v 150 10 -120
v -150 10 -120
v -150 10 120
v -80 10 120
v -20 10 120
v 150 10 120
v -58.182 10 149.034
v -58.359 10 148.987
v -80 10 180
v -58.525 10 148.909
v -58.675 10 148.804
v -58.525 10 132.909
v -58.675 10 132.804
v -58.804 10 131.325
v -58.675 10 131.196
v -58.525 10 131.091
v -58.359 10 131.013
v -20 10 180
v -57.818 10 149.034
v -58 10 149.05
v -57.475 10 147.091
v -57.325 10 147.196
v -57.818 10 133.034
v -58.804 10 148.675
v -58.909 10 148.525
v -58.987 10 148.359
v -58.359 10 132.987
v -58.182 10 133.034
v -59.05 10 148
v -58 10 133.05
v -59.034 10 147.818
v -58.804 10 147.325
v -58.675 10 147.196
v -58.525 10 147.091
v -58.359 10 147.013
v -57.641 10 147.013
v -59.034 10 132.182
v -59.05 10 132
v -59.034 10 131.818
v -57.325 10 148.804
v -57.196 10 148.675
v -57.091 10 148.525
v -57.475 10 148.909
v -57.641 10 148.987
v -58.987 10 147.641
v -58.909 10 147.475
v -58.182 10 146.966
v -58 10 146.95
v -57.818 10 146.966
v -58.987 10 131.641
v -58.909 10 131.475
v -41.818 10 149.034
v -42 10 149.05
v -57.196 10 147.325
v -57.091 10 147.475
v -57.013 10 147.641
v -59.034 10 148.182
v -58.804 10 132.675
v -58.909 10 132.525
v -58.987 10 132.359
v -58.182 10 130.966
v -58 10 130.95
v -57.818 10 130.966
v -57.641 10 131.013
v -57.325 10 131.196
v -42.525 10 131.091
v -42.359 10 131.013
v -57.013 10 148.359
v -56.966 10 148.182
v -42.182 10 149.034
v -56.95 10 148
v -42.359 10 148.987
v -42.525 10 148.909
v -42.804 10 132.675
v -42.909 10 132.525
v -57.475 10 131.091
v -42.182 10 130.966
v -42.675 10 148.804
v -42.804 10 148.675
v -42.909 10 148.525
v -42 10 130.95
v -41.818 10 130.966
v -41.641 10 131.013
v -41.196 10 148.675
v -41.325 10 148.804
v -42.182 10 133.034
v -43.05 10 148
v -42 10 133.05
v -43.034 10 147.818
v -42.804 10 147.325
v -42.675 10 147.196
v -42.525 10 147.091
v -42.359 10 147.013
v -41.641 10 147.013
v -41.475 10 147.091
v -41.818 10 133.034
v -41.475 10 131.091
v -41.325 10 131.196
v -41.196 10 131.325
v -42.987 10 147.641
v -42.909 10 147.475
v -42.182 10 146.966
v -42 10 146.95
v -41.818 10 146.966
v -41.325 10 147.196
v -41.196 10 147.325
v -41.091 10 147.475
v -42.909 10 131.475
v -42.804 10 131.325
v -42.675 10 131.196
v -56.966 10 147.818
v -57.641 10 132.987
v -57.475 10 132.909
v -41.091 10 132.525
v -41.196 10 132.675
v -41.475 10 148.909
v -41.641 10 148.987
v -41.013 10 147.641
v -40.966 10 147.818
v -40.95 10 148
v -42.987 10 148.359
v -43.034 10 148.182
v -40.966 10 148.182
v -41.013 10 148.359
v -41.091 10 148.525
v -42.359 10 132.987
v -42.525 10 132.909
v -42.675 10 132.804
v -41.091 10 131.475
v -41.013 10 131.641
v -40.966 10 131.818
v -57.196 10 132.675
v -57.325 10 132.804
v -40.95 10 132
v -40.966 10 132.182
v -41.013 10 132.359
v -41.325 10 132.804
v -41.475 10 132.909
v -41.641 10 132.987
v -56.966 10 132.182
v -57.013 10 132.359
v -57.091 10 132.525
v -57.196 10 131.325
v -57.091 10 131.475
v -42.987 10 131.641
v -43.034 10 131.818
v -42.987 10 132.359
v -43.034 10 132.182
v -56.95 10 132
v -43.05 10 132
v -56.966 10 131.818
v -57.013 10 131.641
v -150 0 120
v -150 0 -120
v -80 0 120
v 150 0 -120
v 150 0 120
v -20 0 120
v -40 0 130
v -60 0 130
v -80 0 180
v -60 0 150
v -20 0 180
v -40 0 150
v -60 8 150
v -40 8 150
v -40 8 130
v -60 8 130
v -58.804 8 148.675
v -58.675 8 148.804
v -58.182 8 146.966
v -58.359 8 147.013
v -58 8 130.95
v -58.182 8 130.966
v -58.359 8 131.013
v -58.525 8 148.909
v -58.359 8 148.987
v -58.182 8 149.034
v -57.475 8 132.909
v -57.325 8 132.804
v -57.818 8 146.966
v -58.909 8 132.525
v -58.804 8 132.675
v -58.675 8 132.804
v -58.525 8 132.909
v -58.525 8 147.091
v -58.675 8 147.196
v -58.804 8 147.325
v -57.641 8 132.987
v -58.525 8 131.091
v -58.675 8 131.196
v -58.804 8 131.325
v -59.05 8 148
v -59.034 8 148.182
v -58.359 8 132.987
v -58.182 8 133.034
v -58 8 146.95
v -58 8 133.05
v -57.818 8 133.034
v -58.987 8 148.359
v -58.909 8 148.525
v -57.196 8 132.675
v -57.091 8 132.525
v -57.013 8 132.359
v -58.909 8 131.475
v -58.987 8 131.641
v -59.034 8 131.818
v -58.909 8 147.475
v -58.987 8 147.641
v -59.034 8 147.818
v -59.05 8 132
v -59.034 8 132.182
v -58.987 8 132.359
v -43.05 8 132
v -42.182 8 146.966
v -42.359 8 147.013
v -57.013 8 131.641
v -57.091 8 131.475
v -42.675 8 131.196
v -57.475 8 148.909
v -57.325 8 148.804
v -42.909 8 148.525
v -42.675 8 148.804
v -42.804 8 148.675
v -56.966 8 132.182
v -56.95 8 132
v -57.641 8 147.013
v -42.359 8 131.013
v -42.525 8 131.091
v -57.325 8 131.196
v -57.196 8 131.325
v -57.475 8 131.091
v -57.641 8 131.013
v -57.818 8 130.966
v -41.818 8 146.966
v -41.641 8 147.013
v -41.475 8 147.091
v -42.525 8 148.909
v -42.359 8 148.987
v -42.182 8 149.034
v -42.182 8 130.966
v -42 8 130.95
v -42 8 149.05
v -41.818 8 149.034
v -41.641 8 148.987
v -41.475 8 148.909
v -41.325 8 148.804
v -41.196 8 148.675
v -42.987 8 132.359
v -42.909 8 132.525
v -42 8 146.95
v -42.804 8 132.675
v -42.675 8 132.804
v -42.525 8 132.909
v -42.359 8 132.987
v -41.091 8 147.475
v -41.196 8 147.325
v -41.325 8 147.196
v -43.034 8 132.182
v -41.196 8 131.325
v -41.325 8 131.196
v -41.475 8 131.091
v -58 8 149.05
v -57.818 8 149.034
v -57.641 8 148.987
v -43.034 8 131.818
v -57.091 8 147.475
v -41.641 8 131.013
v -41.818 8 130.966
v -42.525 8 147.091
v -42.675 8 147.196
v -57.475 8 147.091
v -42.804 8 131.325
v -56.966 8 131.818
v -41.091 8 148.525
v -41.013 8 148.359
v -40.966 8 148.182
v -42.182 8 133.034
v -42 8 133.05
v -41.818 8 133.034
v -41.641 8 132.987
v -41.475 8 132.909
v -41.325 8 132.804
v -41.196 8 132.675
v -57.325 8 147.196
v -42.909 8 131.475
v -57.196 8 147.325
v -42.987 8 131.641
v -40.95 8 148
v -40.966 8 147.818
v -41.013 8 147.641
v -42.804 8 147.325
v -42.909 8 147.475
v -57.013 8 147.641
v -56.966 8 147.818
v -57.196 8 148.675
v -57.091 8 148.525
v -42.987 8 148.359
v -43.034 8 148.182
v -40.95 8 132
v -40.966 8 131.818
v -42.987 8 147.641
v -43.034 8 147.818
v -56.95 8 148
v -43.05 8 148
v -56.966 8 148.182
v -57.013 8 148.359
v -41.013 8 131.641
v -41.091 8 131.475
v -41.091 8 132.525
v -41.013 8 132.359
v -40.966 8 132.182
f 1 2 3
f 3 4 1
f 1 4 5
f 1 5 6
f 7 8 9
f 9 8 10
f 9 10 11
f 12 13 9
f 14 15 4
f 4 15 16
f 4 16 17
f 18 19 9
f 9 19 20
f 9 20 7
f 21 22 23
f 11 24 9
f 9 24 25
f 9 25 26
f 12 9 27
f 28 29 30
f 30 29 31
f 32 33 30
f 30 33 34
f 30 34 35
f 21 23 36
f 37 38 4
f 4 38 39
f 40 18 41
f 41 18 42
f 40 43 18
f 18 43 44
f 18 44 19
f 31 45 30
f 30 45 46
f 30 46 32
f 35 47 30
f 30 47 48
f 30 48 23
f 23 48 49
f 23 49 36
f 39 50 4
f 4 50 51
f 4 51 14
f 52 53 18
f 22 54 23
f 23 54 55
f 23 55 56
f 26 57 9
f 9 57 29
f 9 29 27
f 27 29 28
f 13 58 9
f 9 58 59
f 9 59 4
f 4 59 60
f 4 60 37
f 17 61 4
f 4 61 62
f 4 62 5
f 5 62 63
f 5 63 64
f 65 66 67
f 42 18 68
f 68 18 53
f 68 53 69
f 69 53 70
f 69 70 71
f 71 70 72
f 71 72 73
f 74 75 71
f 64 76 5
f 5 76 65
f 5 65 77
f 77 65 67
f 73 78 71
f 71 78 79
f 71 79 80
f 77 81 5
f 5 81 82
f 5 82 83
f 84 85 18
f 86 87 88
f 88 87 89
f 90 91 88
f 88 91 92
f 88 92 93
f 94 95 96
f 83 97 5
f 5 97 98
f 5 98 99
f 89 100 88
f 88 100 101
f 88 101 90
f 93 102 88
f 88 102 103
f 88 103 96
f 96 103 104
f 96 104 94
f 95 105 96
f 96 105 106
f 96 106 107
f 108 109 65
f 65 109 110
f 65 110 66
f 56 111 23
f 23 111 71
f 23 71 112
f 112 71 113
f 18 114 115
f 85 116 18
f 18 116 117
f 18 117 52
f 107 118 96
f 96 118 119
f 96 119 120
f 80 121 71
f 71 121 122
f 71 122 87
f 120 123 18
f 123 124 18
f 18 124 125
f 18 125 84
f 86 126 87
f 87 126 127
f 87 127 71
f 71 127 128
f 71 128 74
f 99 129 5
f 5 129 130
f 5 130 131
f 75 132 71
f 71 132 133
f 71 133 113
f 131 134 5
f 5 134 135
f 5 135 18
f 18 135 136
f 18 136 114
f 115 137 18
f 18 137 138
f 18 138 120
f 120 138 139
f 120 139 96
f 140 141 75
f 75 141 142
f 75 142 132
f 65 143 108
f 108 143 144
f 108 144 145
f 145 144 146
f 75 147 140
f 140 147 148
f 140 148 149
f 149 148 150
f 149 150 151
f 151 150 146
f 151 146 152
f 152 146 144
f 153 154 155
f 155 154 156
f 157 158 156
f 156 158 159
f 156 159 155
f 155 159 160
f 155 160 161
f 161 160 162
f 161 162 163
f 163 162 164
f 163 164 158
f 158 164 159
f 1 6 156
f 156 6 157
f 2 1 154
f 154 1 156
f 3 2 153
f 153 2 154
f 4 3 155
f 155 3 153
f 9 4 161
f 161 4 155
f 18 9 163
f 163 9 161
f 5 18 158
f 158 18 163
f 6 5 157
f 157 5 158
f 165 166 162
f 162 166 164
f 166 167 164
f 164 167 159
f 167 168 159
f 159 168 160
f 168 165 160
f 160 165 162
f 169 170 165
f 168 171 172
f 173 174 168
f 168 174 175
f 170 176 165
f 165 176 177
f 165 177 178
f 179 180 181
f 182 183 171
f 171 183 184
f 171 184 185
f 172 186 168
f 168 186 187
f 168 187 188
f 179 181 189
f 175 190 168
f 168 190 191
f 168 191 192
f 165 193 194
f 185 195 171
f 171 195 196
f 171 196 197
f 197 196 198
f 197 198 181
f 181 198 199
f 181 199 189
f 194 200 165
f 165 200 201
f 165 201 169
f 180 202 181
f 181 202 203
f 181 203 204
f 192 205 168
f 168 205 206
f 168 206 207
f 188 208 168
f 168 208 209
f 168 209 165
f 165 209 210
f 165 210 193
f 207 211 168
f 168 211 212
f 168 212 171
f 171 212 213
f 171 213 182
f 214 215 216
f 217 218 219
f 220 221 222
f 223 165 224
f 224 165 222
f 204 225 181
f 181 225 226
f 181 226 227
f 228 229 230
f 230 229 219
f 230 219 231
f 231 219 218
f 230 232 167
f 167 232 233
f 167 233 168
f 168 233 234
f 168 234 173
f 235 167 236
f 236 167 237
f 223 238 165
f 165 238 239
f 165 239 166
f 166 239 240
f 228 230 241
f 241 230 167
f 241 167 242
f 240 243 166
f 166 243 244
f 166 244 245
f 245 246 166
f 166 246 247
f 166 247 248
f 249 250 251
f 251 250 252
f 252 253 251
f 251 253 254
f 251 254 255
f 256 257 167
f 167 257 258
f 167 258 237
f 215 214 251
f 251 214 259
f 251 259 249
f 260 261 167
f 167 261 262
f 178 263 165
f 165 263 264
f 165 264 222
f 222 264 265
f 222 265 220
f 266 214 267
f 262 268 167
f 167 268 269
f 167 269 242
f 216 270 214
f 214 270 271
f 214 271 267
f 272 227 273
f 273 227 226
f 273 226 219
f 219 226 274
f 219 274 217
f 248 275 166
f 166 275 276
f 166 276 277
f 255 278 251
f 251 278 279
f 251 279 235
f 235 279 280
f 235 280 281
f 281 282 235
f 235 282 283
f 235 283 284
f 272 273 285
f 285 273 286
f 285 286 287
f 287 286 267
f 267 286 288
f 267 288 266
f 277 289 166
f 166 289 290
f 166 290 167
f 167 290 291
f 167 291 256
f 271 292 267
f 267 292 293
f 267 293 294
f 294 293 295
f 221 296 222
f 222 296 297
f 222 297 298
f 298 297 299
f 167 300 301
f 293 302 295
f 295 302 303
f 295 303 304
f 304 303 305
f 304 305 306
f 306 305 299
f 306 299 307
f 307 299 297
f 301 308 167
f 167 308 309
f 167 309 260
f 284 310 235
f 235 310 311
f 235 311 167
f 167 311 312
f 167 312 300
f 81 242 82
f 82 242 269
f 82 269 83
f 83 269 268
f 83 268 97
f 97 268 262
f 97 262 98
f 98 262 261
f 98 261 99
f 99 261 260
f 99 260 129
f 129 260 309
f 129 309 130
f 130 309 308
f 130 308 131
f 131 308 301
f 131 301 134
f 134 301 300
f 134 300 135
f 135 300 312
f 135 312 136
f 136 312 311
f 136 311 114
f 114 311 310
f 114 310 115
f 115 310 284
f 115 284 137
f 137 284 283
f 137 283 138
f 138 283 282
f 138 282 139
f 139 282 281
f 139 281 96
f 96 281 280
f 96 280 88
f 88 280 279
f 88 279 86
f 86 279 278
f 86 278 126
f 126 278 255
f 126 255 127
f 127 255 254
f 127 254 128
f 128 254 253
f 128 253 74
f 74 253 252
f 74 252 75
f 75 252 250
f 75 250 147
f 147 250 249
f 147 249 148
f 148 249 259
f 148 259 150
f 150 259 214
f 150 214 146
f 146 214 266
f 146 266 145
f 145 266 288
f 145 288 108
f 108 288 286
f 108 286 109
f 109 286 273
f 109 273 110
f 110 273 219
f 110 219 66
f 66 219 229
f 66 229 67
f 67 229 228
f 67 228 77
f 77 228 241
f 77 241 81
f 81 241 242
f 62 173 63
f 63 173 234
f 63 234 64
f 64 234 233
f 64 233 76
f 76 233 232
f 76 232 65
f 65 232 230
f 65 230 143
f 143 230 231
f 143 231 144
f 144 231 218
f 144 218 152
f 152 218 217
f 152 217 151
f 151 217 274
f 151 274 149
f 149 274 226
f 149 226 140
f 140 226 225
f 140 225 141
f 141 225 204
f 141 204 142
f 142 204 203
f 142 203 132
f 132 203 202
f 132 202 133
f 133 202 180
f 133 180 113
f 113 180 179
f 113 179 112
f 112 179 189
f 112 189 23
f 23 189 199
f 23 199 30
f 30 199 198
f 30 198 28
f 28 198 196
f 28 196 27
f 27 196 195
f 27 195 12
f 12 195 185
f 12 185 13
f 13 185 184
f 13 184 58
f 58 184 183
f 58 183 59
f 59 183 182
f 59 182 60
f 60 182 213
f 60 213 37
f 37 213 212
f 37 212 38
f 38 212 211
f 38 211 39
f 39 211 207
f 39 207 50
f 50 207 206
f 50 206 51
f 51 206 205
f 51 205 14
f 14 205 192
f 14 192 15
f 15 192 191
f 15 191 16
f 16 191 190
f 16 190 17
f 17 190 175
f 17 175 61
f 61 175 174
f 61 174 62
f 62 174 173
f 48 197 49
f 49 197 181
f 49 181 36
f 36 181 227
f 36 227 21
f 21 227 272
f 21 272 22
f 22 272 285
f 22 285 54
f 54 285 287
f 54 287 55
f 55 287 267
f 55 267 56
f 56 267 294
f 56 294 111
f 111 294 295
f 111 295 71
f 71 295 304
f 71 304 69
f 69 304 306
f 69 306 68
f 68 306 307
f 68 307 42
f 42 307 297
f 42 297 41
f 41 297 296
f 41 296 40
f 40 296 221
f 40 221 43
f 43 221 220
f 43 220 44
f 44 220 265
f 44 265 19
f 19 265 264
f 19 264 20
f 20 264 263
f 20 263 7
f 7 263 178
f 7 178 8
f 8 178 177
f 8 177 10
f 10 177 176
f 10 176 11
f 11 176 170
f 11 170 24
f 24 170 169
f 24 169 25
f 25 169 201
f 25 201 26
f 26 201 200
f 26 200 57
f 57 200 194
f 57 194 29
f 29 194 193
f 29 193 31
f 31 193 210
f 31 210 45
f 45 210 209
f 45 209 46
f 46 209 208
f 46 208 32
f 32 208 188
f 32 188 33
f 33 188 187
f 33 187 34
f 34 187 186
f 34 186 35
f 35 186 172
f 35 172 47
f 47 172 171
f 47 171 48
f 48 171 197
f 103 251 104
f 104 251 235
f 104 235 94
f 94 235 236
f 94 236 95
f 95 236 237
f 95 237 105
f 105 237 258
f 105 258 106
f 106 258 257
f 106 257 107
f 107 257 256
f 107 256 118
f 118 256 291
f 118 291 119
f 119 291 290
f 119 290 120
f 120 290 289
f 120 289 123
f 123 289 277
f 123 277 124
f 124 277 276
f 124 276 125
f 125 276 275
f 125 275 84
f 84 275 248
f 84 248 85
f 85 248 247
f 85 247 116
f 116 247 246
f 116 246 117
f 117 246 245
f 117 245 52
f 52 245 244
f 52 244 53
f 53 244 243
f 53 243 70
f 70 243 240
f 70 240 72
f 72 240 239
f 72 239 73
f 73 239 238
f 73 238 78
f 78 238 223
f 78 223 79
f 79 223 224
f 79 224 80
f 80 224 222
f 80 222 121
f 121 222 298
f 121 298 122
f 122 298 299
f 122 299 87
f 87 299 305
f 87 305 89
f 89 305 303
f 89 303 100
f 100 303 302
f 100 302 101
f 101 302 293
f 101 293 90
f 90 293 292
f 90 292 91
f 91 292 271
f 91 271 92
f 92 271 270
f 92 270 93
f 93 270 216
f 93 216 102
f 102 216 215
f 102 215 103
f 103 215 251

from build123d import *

# Parameters (mm, degrees)
EXTRUDE_1_DEPTH     = 10
SKETCH_2_W          = 20
SKETCH_2_H          = 20
SKETCH_2_R          = 1.05
CUT_EXTRUDE_2_DEPTH = 8
SKETCH_2_3_R        = 1.05
CUT_EXTRUDE_3_DEPTH = 235.520787991


with BuildPart() as part:
    # 草圖1 → 填料-伸長1 (new body)
    with BuildSketch(Plane(origin=(0, 0, 0), x_dir=(1, 0, 0), z_dir=(0, 1, 0))):
        Polygon((-150, -120), (-80, -120), (-80, -180), (-20, -180), (-20, -120), (150, -120), (150, 120), (-150, 120), align=None)
    extrude(amount=EXTRUDE_1_DEPTH)

    # 草圖2 → 除料-伸長2 (cut)
    with BuildSketch(Plane.XZ):
        with Locations((-50, 140)):
            Rectangle(SKETCH_2_W, SKETCH_2_H)
        with Locations((-58, 132)):
            Circle(SKETCH_2_R, mode=Mode.SUBTRACT)
        with Locations((-42, 132)):
            Circle(SKETCH_2_R, mode=Mode.SUBTRACT)
        with Locations((-58, 148)):
            Circle(SKETCH_2_R, mode=Mode.SUBTRACT)
        with Locations((-42, 148)):
            Circle(SKETCH_2_R, mode=Mode.SUBTRACT)
    extrude(amount=-CUT_EXTRUDE_2_DEPTH, mode=Mode.SUBTRACT)

    # 草圖2<3> → 除料-伸長3 (cut, through all)
    with BuildSketch(Plane.XZ):
        with Locations((-58, 132)):
            Circle(SKETCH_2_3_R)
        with Locations((-58, 148)):
            Circle(SKETCH_2_3_R)
        with Locations((-42, 148)):
            Circle(SKETCH_2_3_R)
        with Locations((-42, 132)):
            Circle(SKETCH_2_3_R)
    extrude(amount=-CUT_EXTRUDE_3_DEPTH, mode=Mode.SUBTRACT)


solid = part.part
